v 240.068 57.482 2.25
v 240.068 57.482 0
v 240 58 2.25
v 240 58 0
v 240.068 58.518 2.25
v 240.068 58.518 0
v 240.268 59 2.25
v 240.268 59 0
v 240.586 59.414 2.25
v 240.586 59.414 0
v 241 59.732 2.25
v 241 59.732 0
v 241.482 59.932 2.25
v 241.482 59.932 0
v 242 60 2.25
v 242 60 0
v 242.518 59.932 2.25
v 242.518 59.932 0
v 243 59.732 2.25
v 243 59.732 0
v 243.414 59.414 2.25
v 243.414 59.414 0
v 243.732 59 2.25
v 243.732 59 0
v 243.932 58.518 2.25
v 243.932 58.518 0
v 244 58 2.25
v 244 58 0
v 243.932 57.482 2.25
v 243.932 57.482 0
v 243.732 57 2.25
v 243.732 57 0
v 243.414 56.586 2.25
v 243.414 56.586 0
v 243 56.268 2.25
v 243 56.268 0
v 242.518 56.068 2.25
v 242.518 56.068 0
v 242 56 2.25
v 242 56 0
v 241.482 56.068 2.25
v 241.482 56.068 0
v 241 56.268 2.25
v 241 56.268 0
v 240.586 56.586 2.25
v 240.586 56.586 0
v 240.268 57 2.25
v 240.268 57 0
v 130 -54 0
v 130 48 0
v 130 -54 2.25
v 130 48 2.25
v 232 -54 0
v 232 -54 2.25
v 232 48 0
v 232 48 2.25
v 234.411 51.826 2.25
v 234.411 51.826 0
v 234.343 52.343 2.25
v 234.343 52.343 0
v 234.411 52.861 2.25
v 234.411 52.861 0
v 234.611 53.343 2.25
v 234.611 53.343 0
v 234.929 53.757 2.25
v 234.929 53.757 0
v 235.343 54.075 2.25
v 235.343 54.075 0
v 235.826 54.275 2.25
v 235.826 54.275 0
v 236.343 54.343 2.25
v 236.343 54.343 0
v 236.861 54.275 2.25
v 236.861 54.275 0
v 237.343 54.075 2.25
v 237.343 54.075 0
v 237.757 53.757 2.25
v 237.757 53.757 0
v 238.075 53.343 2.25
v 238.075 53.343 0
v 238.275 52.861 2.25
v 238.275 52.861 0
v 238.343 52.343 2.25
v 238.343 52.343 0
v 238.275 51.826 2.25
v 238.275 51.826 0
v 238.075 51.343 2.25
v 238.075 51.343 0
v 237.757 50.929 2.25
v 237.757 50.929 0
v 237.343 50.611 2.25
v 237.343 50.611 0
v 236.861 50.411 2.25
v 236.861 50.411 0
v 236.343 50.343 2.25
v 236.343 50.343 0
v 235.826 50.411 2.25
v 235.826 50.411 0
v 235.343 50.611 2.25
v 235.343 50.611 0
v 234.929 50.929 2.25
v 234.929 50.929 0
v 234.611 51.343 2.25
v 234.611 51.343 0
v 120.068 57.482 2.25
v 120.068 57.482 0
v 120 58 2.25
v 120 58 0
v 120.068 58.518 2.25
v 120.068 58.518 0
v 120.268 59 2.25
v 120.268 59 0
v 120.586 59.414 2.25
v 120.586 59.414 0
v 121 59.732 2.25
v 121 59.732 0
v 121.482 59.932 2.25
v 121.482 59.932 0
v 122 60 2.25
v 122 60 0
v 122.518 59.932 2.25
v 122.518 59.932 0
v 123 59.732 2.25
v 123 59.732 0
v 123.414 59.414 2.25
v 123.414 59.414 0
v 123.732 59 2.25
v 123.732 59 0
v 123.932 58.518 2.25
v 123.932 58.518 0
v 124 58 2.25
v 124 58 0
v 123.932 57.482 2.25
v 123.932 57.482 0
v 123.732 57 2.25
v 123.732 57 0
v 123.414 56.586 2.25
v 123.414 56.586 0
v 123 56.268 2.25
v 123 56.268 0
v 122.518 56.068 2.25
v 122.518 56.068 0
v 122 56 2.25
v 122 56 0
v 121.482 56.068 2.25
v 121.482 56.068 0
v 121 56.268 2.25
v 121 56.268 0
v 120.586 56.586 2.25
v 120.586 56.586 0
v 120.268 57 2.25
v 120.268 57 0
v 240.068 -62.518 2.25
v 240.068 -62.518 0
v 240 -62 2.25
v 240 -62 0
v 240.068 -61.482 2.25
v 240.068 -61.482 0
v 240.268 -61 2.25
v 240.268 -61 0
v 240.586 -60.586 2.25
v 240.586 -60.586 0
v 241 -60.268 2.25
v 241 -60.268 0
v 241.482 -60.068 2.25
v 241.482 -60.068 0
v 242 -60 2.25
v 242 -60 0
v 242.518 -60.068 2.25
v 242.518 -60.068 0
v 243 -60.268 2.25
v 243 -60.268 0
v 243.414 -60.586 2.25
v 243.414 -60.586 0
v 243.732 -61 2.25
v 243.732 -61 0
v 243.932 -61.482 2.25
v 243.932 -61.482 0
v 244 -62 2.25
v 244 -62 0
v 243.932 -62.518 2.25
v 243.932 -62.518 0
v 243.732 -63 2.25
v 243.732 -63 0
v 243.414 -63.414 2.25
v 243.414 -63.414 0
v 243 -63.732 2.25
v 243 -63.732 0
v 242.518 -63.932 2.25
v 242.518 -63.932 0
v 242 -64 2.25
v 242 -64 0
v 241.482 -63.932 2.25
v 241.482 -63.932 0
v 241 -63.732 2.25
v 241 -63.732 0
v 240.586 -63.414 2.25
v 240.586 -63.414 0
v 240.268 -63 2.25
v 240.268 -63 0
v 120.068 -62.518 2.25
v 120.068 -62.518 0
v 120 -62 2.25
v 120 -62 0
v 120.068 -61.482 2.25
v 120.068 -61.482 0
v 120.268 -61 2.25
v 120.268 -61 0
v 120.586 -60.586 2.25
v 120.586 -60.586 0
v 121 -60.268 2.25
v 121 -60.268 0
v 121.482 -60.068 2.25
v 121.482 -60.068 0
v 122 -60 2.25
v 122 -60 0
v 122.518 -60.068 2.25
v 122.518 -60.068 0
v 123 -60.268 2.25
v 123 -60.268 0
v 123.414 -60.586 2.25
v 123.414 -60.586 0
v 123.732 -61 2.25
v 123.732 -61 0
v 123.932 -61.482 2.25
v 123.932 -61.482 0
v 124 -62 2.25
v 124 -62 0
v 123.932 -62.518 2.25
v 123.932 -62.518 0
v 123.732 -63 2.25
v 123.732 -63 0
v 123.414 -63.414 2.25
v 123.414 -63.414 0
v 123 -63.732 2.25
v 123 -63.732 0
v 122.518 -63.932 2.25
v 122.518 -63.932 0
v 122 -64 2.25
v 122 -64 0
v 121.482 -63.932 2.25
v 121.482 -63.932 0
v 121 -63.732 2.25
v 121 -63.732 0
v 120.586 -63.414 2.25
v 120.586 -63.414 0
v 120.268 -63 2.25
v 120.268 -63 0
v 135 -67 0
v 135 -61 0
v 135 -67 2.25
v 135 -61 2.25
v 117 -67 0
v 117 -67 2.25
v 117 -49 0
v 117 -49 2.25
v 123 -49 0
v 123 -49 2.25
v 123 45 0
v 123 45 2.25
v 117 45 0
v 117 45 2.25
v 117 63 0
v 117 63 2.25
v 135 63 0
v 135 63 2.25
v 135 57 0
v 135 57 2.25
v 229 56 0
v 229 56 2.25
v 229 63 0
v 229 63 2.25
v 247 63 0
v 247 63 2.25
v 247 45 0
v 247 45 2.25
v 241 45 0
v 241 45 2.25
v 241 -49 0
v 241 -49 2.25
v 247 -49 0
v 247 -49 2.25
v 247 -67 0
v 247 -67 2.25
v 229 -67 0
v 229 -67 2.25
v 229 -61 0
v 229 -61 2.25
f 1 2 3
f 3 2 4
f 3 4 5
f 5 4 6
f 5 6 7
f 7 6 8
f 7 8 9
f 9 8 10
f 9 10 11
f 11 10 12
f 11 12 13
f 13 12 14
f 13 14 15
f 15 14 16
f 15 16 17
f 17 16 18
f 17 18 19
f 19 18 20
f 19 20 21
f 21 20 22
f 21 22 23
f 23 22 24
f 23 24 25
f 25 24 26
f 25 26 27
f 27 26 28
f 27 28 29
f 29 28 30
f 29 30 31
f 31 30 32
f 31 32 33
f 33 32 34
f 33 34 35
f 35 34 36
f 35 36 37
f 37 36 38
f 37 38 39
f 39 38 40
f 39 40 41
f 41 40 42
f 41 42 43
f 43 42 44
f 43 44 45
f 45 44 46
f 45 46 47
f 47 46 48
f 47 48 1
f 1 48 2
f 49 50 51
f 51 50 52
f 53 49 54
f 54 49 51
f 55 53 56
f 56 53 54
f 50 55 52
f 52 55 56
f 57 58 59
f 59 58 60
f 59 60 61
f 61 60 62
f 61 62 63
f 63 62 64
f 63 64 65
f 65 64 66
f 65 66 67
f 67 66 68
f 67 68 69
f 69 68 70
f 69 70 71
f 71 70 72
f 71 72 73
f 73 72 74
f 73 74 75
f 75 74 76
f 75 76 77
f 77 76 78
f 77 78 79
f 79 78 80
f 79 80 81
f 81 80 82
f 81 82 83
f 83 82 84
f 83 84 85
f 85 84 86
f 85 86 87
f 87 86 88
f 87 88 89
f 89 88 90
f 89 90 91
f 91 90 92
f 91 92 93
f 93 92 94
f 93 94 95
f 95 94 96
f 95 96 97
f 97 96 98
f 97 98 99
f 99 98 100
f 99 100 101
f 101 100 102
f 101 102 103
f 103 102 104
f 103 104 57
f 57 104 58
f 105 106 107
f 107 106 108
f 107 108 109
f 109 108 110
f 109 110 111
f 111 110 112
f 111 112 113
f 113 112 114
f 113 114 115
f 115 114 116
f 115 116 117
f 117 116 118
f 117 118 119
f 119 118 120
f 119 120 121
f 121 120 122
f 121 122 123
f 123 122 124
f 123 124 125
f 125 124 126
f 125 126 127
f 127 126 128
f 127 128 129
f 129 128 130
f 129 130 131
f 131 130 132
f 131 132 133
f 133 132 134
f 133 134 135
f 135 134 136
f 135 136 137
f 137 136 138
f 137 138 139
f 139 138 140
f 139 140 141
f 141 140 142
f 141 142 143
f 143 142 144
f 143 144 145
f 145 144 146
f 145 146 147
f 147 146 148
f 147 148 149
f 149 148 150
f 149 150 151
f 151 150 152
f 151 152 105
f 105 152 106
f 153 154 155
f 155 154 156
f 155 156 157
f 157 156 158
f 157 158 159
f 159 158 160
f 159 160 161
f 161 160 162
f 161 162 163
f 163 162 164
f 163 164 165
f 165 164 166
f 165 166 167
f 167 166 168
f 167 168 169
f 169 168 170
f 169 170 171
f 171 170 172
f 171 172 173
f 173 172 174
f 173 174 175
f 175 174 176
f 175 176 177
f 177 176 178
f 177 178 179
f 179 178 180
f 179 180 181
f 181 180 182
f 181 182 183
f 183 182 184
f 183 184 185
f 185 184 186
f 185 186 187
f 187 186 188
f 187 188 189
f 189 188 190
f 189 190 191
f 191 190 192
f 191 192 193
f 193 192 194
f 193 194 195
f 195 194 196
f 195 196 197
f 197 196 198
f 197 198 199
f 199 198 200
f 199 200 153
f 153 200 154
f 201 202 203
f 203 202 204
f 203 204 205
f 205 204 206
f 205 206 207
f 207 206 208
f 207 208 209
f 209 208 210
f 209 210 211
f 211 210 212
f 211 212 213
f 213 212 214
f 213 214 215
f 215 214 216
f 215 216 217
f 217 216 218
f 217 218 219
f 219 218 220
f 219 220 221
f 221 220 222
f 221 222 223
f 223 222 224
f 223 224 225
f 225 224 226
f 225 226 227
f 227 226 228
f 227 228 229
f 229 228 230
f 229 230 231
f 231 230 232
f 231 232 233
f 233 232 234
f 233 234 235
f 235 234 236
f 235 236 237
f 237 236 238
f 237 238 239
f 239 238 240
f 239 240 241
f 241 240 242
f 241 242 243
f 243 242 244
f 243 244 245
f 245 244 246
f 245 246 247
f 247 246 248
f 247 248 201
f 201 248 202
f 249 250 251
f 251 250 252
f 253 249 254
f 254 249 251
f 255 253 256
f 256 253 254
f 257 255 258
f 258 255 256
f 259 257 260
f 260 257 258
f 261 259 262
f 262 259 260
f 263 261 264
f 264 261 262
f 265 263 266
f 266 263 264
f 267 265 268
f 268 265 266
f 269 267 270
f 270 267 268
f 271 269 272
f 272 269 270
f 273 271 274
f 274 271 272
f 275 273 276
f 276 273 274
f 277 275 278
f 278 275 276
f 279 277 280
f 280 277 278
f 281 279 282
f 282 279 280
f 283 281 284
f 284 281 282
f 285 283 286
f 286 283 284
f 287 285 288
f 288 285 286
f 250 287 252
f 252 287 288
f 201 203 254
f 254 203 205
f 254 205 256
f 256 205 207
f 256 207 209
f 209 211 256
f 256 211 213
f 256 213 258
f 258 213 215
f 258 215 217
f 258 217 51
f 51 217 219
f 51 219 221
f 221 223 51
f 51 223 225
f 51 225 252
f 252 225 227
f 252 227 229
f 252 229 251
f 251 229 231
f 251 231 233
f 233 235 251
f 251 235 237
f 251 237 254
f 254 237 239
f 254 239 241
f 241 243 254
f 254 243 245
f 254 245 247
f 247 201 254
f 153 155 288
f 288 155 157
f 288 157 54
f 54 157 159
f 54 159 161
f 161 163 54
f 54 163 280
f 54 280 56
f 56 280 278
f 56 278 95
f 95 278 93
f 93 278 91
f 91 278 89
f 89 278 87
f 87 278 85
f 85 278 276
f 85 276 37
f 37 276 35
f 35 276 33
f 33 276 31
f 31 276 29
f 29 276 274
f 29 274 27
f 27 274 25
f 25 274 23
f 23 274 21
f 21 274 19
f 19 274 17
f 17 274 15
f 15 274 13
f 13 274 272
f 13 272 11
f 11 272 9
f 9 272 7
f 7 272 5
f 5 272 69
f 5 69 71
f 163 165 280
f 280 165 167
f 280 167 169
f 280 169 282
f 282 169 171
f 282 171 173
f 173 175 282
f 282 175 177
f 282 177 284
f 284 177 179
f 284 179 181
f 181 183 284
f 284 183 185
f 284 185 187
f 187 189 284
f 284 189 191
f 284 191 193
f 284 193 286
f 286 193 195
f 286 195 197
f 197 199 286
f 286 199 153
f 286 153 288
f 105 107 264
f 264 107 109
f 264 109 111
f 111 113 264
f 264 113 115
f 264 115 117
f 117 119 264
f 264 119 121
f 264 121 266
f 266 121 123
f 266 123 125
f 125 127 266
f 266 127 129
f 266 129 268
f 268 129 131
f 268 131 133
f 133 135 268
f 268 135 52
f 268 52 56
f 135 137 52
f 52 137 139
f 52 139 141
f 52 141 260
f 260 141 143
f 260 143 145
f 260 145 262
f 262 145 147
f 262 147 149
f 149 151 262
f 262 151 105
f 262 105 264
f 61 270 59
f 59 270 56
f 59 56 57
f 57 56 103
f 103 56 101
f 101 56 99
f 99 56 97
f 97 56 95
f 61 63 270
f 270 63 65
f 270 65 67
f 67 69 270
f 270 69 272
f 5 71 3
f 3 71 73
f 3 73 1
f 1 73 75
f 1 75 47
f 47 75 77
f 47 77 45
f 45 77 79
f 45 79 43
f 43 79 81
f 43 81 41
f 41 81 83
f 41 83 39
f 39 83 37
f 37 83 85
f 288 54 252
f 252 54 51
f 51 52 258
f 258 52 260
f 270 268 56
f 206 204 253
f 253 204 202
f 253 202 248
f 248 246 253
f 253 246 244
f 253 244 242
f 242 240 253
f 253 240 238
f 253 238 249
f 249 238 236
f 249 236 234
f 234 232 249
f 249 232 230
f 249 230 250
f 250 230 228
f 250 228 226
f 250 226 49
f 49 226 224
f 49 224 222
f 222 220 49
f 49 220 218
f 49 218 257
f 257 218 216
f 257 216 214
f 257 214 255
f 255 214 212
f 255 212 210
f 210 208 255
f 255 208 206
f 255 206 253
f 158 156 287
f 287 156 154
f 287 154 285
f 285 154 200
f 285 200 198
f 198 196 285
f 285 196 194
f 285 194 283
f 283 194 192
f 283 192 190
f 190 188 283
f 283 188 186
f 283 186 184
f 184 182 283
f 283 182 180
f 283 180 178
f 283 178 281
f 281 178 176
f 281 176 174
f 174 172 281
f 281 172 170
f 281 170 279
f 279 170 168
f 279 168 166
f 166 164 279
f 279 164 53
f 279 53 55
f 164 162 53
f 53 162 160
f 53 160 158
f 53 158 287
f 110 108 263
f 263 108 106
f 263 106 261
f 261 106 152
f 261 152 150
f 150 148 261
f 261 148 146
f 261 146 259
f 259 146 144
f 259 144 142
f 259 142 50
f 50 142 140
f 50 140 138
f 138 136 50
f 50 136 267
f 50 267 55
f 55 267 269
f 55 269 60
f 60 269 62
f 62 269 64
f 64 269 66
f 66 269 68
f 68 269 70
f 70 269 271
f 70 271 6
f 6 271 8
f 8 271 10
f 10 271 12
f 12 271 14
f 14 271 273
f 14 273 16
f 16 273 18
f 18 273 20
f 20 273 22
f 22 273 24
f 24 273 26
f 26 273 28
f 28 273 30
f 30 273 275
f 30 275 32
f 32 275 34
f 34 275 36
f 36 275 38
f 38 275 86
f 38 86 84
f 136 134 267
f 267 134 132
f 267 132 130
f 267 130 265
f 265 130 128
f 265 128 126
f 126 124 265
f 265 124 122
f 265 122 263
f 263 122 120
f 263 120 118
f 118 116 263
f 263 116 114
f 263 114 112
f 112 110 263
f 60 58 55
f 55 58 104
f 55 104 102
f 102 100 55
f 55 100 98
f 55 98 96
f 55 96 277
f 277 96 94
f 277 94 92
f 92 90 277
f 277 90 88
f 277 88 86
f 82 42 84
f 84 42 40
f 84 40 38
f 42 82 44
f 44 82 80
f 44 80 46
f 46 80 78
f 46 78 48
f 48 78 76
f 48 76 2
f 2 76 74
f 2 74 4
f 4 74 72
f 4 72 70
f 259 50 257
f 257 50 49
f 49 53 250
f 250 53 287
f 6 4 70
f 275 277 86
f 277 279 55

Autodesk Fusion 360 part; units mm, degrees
sketch "polarizer frame" plane through (0, 0, 0) normal (0, 0, 1) x (1, 0, 0)
  line L0 (130, 48) -> (130, -54)
  line L1 (130, -54) -> (232, -54)
  line L2 (234, 63) -> (247, 63)
  line L3 (247, -54) -> (247, -67)
  line L4 (117, 63) -> (117, 58)
  circle A0 centre (122, 58) radius 2
  line L5 (247, 63) -> (247, 58)
  circle A1 centre (242, 58) radius 2
  line L6 (247, -67) -> (242, -67)
  circle A2 centre (242, -62) radius 2
  line L7 (117, -67) -> (122, -67)
  circle A3 centre (122, -62) radius 2
  circle A4 centre (236.3431, 52.3431) radius 2
  line L8 (232, 48) -> (232, -54)
  line L9 (232, 48) -> (130, 48)
  line L10 (135, 63) -> (135, 59)
  line L11 (247, 63) -> (229, 63)
  line L12 (229, 63) -> (229, 59)
  line L13 (135, 59) -> (135, 57)
  line L14 (135, 57) -> (229, 56)
  line L15 (229, 56) -> (229, 59)
  line L16 (117, 63) -> (135, 63)
  line L17 (229, 63) -> (247, 63)
  line L18 (117, 63) -> (117, 45)
  line L19 (117, 45) -> (123, 45)
  line L20 (117, -67) -> (117, -49)
  line L21 (117, -49) -> (123, -49)
  line L22 (123, -49) -> (123, 45)
  line L23 (117, -67) -> (117, -49)
  line L24 (117, 45) -> (117, 63)
  line L25 (247, 63) -> (247, 45)
  line L26 (247, -67) -> (247, -49)
  line L27 (247, -49) -> (241, -49)
  line L28 (247, 45) -> (241, 45)
  line L29 (241, 45) -> (241, -49)
  line L30 (247, 63) -> (247, 45)
  line L31 (247, -49) -> (247, -54)
  line L32 (117, -67) -> (135, -67)
  line L33 (247, -67) -> (229, -67)
  line L34 (135, -67) -> (135, -61)
  line L35 (135, -61) -> (229, -61)
  line L36 (229, -61) -> (229, -67)
  line L37 (247, -67) -> (229, -67)
  line L38 (135, -67) -> (117, -67)
  dimension "d21" = 13
  dimension "d22" = 13
  dimension "d23" = 130
  dimension "d24" = 130
  dimension "d25" = 5
  dimension "d26" = 4
  dimension "d27" = 5
  dimension "d28" = 5
  dimension "d29" = 4
  dimension "d30" = 4
  dimension "d31" = 4
  dimension "d43" = 8
  dimension "d44" = 4
  dimension "d47" = 18
  dimension "d48" = 4
  dimension "d49" = 18
  dimension "d50" = 18
  dimension "d51" = 6
  dimension "d52" = 18
  dimension "d53" = 18
  dimension "d54" = 6
  dimension "d55" = 6
  dimension "d56" = 18
  dimension "d57" = 18
  dimension "d58" = 6
extrude "Extrude7" add sketch "polarizer frame" along normal blind 2.25
